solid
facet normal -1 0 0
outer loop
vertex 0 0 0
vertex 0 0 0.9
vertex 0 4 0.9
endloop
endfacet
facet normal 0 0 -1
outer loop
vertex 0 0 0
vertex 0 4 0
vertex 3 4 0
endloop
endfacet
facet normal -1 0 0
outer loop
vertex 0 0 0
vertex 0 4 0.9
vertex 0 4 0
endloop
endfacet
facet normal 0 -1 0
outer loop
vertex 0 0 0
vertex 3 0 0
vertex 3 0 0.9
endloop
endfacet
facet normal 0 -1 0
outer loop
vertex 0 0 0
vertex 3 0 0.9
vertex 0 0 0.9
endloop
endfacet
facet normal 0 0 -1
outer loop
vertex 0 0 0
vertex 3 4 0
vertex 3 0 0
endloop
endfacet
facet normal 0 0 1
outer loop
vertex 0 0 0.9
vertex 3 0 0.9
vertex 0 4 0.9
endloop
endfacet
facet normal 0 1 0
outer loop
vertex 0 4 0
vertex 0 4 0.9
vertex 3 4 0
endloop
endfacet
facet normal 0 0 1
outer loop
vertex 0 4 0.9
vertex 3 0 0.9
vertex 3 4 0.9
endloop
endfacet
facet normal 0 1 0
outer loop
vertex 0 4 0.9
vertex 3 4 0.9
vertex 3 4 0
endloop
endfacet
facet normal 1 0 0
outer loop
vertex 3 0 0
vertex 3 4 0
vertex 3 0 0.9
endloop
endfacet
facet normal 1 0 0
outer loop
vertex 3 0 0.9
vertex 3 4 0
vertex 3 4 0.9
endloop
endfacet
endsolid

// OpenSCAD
/* Warning, this is a very basic generator with a lot of approximation 
input data : [VQFN, QFA, 3x4x0.9mm, 24, , A, C04-01275A]
generated by com.zoubworld.electronics.cad.model3d.Basic
Date : Sun Feb 15 10:50:49 CET 2026
*/

//body
color("black")
translate([0,0,0])
cube([3.0,4.0,0.9], center=false);
